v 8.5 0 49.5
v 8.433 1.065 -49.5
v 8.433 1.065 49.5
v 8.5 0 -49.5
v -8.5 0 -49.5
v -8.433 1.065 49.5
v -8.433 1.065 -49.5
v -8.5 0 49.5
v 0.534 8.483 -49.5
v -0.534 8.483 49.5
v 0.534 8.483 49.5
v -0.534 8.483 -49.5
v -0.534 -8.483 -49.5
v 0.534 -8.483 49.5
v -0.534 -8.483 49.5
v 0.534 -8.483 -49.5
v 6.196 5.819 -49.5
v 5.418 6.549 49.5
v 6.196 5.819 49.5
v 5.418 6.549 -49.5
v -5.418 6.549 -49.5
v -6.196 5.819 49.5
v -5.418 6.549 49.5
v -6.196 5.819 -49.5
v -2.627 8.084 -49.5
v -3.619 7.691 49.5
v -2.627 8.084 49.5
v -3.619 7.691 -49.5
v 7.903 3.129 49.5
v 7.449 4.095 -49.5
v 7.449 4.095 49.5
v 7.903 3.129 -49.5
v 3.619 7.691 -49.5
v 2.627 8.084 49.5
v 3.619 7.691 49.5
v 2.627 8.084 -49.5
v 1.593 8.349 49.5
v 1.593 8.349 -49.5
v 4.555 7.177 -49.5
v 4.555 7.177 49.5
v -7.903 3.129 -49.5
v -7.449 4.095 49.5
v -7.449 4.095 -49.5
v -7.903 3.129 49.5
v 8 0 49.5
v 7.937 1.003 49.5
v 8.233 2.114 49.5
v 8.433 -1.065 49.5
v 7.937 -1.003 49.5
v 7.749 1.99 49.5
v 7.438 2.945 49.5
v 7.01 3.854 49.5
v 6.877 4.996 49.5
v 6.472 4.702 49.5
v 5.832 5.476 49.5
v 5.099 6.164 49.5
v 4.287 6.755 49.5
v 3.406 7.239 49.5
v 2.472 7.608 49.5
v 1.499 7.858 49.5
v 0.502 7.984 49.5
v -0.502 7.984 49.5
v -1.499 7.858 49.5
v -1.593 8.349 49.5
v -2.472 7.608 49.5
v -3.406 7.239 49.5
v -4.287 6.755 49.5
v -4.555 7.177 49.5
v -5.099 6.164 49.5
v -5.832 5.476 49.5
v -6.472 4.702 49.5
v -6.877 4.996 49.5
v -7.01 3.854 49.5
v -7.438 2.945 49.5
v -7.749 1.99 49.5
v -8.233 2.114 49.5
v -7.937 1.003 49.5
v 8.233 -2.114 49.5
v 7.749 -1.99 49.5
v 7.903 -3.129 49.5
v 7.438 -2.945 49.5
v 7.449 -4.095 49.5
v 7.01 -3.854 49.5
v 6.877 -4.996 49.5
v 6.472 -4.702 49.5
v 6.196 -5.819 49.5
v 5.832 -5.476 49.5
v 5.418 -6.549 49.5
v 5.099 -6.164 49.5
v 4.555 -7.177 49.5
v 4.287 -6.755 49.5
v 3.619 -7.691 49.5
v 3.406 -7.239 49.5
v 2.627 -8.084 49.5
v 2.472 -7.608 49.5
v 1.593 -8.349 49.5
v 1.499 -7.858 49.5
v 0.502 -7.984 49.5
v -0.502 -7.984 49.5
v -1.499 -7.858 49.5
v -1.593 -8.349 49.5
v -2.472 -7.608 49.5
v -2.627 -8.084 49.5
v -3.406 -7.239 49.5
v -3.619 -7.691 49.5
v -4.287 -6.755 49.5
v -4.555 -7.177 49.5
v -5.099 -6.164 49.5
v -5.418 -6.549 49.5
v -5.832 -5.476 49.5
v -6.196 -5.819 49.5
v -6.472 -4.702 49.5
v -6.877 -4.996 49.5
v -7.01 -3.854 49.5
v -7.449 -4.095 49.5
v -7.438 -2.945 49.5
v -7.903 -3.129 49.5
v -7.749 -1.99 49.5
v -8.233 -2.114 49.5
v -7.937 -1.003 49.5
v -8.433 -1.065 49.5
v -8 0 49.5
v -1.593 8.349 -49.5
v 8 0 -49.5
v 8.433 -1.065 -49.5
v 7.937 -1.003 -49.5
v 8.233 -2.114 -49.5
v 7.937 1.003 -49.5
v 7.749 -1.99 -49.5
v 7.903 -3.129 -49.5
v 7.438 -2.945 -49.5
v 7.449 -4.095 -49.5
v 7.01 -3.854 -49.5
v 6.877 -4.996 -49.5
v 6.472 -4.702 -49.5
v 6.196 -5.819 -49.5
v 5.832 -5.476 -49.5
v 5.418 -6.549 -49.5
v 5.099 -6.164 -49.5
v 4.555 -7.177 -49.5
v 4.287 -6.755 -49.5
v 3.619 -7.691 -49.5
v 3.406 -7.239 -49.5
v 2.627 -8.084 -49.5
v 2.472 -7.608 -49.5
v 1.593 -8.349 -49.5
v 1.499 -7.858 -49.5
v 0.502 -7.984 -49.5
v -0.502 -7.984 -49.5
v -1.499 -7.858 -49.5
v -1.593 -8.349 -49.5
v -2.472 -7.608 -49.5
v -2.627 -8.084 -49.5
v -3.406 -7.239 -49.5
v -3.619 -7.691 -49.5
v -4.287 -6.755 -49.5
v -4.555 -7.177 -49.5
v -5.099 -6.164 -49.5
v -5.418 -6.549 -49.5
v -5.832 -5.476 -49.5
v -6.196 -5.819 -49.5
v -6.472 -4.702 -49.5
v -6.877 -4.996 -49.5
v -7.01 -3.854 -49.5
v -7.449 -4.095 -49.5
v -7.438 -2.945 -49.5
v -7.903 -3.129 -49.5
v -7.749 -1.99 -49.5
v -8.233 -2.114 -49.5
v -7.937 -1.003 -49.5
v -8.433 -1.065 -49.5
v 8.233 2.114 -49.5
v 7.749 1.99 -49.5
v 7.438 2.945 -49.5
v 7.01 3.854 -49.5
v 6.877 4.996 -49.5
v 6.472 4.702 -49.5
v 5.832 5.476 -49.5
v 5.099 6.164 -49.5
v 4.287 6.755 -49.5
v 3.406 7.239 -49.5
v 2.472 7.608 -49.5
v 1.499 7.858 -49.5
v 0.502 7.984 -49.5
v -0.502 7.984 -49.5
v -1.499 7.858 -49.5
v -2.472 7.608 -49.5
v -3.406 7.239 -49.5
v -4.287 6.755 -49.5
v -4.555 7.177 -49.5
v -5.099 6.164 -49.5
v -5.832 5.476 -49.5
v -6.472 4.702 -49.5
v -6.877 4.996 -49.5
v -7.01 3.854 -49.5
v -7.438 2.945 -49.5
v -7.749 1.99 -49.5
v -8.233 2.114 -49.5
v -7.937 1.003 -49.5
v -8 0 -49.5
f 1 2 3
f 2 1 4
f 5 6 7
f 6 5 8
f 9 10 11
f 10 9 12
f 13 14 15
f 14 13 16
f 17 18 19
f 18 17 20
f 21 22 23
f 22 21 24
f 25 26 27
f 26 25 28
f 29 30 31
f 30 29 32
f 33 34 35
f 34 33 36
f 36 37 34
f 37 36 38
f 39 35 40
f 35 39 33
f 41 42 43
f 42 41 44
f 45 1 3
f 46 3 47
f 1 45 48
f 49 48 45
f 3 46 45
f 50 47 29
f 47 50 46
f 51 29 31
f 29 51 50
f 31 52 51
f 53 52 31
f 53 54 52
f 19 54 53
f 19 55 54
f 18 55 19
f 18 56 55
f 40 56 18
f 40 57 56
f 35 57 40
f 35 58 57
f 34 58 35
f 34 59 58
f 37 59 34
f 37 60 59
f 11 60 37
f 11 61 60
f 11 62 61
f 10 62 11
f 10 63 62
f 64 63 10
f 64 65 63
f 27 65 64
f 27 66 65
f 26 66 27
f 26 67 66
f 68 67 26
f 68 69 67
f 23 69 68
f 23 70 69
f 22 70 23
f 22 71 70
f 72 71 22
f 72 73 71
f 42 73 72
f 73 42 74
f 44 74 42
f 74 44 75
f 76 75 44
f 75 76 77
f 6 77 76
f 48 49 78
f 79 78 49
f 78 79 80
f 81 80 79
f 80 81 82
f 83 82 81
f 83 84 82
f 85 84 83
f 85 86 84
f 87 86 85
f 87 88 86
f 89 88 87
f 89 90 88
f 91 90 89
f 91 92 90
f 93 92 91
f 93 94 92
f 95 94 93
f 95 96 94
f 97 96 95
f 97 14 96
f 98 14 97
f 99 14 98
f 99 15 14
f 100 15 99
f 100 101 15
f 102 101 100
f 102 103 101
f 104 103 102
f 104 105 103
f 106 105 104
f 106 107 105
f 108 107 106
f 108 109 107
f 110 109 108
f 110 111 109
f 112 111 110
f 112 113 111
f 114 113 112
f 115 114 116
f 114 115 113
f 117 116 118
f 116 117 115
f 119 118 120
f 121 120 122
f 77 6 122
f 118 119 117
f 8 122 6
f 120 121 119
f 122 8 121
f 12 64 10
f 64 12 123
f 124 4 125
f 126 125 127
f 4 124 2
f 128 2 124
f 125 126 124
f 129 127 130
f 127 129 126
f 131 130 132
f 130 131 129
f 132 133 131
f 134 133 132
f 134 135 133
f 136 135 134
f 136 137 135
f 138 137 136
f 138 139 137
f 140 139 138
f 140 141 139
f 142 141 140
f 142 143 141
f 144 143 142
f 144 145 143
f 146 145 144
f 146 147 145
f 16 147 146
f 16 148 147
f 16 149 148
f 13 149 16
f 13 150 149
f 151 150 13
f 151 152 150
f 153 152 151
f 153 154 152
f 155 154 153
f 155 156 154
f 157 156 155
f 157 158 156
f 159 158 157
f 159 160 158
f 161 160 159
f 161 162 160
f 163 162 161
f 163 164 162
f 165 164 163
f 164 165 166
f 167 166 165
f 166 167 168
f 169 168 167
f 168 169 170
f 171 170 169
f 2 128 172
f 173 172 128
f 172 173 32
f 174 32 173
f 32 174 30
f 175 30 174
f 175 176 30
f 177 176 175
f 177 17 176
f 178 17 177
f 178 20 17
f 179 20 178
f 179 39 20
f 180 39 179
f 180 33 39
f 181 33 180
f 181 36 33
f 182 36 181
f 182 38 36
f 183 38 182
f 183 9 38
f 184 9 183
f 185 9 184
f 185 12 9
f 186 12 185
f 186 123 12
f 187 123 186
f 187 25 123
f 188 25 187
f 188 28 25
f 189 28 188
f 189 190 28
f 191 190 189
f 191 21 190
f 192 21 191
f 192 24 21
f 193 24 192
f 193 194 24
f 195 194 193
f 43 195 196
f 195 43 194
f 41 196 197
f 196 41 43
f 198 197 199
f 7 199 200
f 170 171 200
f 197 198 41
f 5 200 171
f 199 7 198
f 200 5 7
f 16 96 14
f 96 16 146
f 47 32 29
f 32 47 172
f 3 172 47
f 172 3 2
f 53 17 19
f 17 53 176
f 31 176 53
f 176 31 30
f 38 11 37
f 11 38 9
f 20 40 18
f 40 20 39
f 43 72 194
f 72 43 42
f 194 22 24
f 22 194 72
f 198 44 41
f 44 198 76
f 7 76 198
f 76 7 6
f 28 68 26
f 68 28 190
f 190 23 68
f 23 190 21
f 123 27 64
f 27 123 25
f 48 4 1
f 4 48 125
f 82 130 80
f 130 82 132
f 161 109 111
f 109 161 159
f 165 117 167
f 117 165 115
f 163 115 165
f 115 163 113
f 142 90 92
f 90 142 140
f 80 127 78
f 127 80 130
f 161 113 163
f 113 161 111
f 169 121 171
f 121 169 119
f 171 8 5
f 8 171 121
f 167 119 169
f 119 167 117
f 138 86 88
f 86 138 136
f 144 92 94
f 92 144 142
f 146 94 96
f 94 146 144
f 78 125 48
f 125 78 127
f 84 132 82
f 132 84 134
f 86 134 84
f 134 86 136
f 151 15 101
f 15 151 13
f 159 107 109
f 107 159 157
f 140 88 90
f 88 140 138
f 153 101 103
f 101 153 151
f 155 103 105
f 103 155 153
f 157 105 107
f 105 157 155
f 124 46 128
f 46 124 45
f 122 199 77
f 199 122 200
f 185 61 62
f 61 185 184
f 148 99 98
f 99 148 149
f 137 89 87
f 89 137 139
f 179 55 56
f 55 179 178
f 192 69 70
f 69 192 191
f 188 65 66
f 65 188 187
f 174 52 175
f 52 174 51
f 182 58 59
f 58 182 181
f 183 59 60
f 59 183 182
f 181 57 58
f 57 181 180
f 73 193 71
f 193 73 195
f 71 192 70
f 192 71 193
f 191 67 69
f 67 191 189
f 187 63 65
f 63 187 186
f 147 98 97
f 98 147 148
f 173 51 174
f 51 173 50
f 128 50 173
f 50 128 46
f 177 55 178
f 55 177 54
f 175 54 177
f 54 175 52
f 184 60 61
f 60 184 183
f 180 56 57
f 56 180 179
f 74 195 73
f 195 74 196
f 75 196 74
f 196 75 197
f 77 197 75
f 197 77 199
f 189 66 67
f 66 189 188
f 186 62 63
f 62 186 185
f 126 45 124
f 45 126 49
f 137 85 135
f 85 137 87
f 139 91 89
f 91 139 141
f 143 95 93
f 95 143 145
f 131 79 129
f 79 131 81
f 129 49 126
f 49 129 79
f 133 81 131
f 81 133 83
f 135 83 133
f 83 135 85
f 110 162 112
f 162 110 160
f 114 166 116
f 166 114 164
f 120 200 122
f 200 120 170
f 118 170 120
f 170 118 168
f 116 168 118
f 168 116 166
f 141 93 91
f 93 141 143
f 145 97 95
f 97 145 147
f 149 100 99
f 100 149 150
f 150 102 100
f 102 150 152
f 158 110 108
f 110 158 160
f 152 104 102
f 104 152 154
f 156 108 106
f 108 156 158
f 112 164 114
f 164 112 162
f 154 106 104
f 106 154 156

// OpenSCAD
$fn = 50;


difference() {
	union() {
		translate(v = [0, 0, -49.5000000000]) {
			cylinder(h = 99, r = 8.5000000000);
		}
	}
	union() {
		translate(v = [0, 0, -100.0000000000]) {
			cylinder(h = 200, r = 8);
		}
	}
}
